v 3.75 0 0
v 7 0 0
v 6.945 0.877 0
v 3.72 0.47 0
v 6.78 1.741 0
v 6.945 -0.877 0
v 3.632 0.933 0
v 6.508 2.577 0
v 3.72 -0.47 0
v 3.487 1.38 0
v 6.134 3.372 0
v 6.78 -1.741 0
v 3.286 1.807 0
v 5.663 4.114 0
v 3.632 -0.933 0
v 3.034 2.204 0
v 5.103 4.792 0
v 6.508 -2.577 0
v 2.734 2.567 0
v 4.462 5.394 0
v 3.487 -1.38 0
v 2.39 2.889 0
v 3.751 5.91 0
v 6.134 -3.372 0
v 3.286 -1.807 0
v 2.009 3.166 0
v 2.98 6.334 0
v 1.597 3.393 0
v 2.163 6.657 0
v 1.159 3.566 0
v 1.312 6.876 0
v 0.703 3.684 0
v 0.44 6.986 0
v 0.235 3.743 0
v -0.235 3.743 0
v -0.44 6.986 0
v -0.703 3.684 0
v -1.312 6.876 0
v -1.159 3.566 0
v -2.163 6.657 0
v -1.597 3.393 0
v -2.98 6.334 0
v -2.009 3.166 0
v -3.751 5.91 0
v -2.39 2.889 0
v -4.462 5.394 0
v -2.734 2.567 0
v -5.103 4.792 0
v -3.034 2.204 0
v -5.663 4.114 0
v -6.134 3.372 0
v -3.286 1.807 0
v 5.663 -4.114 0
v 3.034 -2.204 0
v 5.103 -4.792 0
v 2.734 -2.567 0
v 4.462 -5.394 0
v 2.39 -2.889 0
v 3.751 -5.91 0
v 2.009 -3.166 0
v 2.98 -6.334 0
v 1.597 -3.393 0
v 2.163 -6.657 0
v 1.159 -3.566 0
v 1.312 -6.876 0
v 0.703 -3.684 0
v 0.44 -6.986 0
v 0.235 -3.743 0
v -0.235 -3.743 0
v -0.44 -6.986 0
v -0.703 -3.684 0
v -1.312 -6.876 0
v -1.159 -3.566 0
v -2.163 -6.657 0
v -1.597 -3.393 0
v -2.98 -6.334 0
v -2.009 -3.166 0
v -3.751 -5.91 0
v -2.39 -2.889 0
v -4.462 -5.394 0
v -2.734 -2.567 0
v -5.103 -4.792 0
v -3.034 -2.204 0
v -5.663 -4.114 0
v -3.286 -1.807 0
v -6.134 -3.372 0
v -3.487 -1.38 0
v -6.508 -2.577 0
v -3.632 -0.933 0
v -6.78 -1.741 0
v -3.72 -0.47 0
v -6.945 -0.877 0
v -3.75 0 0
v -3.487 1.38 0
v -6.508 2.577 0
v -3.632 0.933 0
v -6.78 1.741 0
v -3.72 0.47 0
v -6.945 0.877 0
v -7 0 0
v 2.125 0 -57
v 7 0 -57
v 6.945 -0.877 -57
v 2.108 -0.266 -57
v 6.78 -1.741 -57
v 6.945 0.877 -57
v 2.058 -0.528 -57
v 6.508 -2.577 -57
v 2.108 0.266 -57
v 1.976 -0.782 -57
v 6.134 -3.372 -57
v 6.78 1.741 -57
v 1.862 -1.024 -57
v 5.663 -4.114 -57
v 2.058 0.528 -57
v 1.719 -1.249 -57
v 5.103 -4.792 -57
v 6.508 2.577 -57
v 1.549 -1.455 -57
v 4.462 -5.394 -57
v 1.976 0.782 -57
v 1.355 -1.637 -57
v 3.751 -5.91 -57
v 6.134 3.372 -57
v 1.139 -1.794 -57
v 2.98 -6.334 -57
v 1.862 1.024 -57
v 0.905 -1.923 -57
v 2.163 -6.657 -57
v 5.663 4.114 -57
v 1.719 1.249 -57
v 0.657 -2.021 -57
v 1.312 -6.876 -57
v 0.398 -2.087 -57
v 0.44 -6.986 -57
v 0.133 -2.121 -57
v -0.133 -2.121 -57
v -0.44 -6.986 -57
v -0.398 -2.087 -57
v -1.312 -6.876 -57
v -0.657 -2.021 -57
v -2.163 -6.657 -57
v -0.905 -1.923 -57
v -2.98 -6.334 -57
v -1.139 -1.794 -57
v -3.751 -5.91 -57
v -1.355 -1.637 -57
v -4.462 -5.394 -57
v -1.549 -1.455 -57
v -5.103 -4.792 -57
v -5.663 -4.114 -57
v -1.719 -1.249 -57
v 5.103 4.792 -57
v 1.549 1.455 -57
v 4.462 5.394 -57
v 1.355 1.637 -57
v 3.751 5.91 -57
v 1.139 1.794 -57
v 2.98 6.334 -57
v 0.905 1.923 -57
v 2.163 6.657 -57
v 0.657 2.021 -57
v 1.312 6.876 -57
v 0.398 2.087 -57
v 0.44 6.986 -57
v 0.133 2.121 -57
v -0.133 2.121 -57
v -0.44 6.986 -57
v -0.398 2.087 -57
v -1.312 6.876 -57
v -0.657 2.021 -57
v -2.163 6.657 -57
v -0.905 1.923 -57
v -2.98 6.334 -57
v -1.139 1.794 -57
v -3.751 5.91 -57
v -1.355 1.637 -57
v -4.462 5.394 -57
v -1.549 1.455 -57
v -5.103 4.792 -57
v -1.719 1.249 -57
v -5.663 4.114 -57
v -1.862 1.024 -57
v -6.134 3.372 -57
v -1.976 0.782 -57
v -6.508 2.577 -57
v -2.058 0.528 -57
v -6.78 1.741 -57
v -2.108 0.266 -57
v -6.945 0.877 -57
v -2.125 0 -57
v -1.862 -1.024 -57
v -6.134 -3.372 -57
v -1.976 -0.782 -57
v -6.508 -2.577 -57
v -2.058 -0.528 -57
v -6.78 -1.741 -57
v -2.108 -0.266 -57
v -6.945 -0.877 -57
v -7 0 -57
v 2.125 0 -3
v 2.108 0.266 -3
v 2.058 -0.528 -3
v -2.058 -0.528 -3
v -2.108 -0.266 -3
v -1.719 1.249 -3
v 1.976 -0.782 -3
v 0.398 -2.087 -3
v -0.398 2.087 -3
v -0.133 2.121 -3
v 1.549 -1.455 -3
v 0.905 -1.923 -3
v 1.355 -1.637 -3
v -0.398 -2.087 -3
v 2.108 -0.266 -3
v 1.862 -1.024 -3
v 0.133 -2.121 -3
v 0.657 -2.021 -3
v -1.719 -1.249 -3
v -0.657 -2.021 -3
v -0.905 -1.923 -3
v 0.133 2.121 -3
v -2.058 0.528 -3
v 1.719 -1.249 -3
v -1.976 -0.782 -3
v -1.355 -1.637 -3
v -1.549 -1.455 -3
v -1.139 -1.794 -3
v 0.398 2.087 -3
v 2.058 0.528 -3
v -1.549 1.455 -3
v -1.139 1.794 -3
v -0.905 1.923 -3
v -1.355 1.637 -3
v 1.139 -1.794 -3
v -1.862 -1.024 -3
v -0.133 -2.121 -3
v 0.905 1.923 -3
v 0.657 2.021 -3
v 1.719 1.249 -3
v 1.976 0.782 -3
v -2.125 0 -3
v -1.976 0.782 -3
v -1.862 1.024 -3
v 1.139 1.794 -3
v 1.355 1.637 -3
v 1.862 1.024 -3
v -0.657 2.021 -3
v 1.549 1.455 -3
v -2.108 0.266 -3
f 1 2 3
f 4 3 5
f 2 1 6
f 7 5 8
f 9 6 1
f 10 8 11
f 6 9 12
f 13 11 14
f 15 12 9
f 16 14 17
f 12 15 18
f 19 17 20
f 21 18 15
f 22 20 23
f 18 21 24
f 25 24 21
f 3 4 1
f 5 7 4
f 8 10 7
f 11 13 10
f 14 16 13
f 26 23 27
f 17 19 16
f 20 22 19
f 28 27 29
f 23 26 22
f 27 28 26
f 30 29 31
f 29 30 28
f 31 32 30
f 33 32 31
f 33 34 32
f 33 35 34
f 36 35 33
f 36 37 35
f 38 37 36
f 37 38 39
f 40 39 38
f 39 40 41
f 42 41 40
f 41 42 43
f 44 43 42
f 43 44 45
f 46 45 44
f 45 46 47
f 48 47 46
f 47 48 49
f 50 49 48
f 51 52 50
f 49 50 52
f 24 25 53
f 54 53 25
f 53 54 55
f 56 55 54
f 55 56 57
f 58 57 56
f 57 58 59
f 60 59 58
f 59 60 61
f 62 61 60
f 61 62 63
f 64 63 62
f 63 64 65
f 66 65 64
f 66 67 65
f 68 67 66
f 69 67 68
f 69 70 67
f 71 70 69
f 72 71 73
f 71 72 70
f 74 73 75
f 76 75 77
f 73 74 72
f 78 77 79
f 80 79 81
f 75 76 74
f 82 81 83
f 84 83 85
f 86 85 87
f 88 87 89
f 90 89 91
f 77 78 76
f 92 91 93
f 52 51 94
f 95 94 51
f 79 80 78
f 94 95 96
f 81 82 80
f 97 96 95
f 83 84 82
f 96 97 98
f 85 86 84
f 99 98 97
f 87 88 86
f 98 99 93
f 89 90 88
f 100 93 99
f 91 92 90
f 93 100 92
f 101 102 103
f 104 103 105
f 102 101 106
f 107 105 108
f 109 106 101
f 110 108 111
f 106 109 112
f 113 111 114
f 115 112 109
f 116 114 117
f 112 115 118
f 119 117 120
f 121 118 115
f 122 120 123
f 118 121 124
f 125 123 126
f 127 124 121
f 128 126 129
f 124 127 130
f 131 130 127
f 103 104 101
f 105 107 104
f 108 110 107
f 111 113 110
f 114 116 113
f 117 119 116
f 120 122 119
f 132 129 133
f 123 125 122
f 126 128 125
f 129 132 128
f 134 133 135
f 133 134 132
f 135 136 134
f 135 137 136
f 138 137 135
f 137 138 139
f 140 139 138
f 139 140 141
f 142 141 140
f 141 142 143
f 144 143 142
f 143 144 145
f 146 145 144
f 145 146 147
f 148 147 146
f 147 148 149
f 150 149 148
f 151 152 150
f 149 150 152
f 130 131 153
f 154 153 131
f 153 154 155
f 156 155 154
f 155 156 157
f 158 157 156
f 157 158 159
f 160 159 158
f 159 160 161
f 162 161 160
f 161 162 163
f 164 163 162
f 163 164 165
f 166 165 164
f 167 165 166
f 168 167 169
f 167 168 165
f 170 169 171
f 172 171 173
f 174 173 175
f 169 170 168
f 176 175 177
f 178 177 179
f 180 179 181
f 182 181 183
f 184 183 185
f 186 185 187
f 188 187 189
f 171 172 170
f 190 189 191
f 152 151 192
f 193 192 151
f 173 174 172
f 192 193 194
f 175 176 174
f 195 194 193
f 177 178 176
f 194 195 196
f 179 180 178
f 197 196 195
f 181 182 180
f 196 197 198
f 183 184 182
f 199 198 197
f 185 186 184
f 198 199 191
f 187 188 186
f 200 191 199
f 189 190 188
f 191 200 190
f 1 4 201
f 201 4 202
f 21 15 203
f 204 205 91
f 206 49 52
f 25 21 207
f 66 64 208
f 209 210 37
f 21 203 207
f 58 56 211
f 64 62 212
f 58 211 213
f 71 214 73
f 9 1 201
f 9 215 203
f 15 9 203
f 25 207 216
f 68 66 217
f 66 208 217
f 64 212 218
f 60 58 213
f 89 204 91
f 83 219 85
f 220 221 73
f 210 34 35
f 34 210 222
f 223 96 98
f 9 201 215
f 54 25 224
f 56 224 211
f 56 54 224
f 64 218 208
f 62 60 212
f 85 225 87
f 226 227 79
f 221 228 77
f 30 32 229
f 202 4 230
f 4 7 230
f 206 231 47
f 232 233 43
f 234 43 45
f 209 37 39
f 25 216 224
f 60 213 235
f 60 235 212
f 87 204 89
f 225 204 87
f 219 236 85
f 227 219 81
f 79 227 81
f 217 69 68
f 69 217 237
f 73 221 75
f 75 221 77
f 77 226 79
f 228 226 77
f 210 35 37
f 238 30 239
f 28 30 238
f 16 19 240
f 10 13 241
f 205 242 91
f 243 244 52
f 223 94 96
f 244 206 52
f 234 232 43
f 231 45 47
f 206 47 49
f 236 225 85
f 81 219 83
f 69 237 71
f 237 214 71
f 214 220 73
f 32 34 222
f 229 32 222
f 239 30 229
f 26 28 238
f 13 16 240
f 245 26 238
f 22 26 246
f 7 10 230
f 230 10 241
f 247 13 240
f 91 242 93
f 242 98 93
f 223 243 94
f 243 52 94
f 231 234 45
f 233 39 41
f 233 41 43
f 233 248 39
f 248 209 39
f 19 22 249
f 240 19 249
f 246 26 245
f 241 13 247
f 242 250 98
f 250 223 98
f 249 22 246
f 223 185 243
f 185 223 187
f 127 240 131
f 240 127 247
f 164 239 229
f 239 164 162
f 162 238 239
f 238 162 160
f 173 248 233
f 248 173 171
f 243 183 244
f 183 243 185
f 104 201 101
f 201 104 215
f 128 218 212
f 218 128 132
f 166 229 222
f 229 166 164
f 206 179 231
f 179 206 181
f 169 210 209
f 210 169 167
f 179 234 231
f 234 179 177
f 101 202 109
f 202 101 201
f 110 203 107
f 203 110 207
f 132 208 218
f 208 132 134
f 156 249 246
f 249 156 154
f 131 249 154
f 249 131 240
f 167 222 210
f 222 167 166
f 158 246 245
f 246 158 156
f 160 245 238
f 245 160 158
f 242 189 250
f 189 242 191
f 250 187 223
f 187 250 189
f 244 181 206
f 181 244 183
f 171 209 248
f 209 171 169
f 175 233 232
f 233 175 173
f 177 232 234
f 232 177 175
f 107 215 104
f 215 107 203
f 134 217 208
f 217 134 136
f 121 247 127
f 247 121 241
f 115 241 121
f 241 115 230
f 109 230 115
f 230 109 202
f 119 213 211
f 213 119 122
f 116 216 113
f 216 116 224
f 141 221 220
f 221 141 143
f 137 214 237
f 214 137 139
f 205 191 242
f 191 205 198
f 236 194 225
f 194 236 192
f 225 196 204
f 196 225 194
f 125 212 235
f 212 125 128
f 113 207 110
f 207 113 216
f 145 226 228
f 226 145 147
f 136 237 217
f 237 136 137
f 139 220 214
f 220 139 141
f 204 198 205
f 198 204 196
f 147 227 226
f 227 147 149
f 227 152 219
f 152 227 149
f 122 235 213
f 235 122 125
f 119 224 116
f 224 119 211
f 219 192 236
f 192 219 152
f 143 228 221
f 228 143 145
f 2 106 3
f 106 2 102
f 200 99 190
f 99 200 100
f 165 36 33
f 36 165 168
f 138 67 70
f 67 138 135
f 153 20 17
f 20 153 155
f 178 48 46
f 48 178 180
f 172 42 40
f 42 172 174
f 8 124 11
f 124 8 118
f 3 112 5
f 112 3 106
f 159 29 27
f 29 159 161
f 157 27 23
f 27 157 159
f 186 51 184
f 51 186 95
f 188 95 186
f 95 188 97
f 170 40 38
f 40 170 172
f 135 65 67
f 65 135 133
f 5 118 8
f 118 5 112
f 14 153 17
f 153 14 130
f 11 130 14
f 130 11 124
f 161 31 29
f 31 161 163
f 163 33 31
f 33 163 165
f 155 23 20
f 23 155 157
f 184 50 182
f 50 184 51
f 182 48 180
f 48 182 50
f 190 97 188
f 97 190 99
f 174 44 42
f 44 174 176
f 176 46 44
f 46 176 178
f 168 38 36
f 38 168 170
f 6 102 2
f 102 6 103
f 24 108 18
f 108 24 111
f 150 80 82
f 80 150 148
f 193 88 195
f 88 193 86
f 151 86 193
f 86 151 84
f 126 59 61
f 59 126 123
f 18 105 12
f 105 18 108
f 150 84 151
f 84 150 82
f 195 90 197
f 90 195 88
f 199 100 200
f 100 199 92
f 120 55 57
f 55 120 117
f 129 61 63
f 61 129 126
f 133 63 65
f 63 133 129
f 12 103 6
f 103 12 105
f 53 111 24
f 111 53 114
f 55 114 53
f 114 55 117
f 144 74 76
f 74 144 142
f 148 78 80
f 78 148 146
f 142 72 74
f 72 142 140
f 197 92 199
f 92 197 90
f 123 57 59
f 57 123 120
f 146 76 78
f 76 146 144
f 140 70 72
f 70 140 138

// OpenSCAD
$fn = 50;


difference() {
	union() {
		translate(v = [0, 0, -57.0000000000]) {
			cylinder(h = 57, r = 7.0000000000);
		}
		cylinder(h = 0, r = 16.0000000000);
	}
	union() {
		translate(v = [0, 0, 0]) {
			rotate(a = [0, 0, 0]) {
				difference() {
					union() {
						#translate(v = [0, 0, -57.0000000000]) {
							cylinder(h = 57, r = 2.0000000000);
						}
						#translate(v = [0, 0, -3]) {
							cylinder(h = 3, r1 = 2.1250000000, r2 = 3.7500000000);
						}
						#translate(v = [0, 0, -57.0000000000]) {
							cylinder(h = 57, r = 2.1250000000);
						}
						#translate(v = [0, 0, -57.0000000000]) {
							cylinder(h = 57, r = 2.0000000000);
						}
					}
					union();
				}
			}
		}
	}
}
